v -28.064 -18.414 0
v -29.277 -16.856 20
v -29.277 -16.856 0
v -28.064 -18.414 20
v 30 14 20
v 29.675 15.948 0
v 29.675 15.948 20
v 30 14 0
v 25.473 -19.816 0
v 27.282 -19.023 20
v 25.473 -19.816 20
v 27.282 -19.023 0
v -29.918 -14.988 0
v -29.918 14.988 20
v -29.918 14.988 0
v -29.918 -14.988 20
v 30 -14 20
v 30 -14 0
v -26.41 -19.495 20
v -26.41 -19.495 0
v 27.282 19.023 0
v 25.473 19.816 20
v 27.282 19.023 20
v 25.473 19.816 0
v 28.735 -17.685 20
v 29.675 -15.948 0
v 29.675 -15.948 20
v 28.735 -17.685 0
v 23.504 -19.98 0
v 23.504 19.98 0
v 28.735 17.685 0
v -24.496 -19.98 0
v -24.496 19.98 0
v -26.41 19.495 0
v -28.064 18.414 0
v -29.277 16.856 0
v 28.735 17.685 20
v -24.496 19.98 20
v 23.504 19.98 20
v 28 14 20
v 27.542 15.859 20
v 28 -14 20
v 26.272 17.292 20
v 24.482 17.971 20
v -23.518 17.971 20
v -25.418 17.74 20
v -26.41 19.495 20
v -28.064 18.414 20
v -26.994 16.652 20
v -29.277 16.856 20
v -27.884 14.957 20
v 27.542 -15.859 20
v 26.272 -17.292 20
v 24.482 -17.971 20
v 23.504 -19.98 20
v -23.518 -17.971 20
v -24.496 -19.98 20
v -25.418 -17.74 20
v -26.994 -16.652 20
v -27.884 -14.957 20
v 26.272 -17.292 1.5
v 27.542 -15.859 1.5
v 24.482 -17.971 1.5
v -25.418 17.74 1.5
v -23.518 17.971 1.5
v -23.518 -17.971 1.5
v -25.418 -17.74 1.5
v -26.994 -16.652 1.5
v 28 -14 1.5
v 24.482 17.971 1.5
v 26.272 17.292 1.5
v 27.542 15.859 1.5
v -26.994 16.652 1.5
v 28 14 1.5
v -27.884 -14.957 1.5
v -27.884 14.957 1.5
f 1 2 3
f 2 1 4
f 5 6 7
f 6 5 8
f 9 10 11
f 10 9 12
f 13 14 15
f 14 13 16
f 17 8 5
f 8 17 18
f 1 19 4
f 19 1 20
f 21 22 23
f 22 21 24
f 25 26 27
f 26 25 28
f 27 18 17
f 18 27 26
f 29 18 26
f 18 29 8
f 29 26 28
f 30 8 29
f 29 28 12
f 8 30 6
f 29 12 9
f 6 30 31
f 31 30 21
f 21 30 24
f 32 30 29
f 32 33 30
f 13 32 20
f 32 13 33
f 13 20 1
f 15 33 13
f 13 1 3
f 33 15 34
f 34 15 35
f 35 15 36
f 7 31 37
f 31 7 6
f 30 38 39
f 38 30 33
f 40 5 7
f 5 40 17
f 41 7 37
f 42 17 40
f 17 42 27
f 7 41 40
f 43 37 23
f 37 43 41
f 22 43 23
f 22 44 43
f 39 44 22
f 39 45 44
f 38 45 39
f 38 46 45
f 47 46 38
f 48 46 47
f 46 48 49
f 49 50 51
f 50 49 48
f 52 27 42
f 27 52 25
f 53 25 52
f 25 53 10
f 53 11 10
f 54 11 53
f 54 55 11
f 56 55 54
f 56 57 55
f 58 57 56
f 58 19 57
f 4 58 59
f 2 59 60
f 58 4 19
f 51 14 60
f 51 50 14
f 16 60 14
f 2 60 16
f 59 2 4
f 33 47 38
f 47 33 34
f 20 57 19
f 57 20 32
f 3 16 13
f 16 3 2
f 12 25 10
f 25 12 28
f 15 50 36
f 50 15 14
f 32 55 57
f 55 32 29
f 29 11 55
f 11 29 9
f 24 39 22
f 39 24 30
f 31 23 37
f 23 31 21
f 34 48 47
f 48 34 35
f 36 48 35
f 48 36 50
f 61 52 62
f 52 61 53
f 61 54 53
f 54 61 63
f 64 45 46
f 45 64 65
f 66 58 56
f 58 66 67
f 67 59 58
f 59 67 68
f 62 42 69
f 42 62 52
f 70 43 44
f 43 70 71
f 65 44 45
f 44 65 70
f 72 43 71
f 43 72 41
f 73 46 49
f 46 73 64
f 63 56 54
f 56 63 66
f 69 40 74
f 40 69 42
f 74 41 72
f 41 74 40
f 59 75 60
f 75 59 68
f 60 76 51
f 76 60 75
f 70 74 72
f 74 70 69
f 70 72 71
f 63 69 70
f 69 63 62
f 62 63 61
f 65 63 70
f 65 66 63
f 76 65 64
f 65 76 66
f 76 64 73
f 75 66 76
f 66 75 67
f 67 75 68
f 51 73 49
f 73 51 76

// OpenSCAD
/* doodle-meta {"version":1,"parameters":{"overall_length":{"label":"Overall Length","description":"Changes the overall length of the tray along the X axis","unit":"mm","feature":"body_length"},"overall_width":{"label":"Overall Width","description":"Changes the overall width of the tray along the Y axis","unit":"mm","feature":"body_width"},"overall_height":{"label":"Overall Height","description":"Changes the overall height of the tray along the Z axis","unit":"mm","feature":"body_height"},"wall_thickness":{"label":"Wall Thickness","description":"Changes the thickness of the tray walls and floor","unit":"mm","feature":"wall_thickness"},"corner_radius":{"label":"Corner Radius","description":"Changes the radius of the rounded corners","unit":"mm","feature":"corner_radius"}},"features":{"body_length":{"kind":"dimension","axis":"x","label":"Overall Length"},"body_width":{"kind":"dimension","axis":"y","label":"Overall Width"},"body_height":{"kind":"dimension","axis":"z","label":"Overall Height"},"wall_thickness":{"kind":"region","label":"Wall Thickness","min":[0,0,0],"max":[{"parameter":"wall_thickness","scale":1,"offset":0},{"parameter":"overall_width","scale":0.5,"offset":0},{"parameter":"overall_height","scale":1,"offset":0}]},"corner_radius":{"kind":"region","label":"Corner Radius","min":[{"parameter":"overall_length","scale":0.5,"offset":0},{"parameter":"overall_width","scale":0.5,"offset":0},0],"max":[{"parameter":"overall_length","scale":1,"offset":0},{"parameter":"overall_width","scale":1,"offset":0},{"parameter":"overall_height","scale":1,"offset":0}]}}} */

// Top-level parameters (user-editable)
overall_length = 60.0;
overall_width = 40.0;
overall_height = 20.0;
wall_thickness = 2.0;
corner_radius = 6.0;

// Derived parameters (not user-editable)
inner_length = overall_length - 2 * wall_thickness;
inner_width = overall_width - 2 * wall_thickness;
inner_height = overall_height - wall_thickness;
inner_radius = corner_radius - wall_thickness;

// Helper module for a rounded rectangle centered at origin in XY plane
module rounded_rect(l, w, r, h) {
    // Ensure radius is valid
    r_safe = min(r, l/2, w/2);
    
    // Create the shape using hull of 4 cylinders and a central box
    // Or simpler: offset approach isn't available in standard lib without libraries.
    // Standard approach: Hull of 4 cylinders at corners + box? 
    // Actually, standard OpenSCAD way for rounded rect is often hull of 4 cylinders.
    // But for a solid extrusion, we can use a polygon or hull.
    // Let's use hull of 4 cylinders for the base shape.
    
    // Corner positions
    x = l/2 - r_safe;
    y = w/2 - r_safe;
    
    hull() {
        translate([x, y, 0]) cylinder(h=h, r=r_safe, center=true);
        translate([-x, y, 0]) cylinder(h=h, r=r_safe, center=true);
        translate([-x, -y, 0]) cylinder(h=h, r=r_safe, center=true);
        translate([x, -y, 0]) cylinder(h=h, r=r_safe, center=true);
    }
}

// Main design
difference() {
    // Outer body
    translate([0, 0, overall_height/2]) {
        rounded_rect(overall_length, overall_width, corner_radius, overall_height);
    }
    
    // Inner cavity (subtractive)
    // The cavity starts at Z = wall_thickness and goes up to Z = overall_height
    // Height of cavity = overall_height - wall_thickness
    // Center of cavity Z = wall_thickness + (overall_height - wall_thickness)/2
    translate([0, 0, wall_thickness + inner_height/2]) {
        rounded_rect(inner_length, inner_width, inner_radius, inner_height + 1); // +1 to ensure clean cut at top
    }
}
